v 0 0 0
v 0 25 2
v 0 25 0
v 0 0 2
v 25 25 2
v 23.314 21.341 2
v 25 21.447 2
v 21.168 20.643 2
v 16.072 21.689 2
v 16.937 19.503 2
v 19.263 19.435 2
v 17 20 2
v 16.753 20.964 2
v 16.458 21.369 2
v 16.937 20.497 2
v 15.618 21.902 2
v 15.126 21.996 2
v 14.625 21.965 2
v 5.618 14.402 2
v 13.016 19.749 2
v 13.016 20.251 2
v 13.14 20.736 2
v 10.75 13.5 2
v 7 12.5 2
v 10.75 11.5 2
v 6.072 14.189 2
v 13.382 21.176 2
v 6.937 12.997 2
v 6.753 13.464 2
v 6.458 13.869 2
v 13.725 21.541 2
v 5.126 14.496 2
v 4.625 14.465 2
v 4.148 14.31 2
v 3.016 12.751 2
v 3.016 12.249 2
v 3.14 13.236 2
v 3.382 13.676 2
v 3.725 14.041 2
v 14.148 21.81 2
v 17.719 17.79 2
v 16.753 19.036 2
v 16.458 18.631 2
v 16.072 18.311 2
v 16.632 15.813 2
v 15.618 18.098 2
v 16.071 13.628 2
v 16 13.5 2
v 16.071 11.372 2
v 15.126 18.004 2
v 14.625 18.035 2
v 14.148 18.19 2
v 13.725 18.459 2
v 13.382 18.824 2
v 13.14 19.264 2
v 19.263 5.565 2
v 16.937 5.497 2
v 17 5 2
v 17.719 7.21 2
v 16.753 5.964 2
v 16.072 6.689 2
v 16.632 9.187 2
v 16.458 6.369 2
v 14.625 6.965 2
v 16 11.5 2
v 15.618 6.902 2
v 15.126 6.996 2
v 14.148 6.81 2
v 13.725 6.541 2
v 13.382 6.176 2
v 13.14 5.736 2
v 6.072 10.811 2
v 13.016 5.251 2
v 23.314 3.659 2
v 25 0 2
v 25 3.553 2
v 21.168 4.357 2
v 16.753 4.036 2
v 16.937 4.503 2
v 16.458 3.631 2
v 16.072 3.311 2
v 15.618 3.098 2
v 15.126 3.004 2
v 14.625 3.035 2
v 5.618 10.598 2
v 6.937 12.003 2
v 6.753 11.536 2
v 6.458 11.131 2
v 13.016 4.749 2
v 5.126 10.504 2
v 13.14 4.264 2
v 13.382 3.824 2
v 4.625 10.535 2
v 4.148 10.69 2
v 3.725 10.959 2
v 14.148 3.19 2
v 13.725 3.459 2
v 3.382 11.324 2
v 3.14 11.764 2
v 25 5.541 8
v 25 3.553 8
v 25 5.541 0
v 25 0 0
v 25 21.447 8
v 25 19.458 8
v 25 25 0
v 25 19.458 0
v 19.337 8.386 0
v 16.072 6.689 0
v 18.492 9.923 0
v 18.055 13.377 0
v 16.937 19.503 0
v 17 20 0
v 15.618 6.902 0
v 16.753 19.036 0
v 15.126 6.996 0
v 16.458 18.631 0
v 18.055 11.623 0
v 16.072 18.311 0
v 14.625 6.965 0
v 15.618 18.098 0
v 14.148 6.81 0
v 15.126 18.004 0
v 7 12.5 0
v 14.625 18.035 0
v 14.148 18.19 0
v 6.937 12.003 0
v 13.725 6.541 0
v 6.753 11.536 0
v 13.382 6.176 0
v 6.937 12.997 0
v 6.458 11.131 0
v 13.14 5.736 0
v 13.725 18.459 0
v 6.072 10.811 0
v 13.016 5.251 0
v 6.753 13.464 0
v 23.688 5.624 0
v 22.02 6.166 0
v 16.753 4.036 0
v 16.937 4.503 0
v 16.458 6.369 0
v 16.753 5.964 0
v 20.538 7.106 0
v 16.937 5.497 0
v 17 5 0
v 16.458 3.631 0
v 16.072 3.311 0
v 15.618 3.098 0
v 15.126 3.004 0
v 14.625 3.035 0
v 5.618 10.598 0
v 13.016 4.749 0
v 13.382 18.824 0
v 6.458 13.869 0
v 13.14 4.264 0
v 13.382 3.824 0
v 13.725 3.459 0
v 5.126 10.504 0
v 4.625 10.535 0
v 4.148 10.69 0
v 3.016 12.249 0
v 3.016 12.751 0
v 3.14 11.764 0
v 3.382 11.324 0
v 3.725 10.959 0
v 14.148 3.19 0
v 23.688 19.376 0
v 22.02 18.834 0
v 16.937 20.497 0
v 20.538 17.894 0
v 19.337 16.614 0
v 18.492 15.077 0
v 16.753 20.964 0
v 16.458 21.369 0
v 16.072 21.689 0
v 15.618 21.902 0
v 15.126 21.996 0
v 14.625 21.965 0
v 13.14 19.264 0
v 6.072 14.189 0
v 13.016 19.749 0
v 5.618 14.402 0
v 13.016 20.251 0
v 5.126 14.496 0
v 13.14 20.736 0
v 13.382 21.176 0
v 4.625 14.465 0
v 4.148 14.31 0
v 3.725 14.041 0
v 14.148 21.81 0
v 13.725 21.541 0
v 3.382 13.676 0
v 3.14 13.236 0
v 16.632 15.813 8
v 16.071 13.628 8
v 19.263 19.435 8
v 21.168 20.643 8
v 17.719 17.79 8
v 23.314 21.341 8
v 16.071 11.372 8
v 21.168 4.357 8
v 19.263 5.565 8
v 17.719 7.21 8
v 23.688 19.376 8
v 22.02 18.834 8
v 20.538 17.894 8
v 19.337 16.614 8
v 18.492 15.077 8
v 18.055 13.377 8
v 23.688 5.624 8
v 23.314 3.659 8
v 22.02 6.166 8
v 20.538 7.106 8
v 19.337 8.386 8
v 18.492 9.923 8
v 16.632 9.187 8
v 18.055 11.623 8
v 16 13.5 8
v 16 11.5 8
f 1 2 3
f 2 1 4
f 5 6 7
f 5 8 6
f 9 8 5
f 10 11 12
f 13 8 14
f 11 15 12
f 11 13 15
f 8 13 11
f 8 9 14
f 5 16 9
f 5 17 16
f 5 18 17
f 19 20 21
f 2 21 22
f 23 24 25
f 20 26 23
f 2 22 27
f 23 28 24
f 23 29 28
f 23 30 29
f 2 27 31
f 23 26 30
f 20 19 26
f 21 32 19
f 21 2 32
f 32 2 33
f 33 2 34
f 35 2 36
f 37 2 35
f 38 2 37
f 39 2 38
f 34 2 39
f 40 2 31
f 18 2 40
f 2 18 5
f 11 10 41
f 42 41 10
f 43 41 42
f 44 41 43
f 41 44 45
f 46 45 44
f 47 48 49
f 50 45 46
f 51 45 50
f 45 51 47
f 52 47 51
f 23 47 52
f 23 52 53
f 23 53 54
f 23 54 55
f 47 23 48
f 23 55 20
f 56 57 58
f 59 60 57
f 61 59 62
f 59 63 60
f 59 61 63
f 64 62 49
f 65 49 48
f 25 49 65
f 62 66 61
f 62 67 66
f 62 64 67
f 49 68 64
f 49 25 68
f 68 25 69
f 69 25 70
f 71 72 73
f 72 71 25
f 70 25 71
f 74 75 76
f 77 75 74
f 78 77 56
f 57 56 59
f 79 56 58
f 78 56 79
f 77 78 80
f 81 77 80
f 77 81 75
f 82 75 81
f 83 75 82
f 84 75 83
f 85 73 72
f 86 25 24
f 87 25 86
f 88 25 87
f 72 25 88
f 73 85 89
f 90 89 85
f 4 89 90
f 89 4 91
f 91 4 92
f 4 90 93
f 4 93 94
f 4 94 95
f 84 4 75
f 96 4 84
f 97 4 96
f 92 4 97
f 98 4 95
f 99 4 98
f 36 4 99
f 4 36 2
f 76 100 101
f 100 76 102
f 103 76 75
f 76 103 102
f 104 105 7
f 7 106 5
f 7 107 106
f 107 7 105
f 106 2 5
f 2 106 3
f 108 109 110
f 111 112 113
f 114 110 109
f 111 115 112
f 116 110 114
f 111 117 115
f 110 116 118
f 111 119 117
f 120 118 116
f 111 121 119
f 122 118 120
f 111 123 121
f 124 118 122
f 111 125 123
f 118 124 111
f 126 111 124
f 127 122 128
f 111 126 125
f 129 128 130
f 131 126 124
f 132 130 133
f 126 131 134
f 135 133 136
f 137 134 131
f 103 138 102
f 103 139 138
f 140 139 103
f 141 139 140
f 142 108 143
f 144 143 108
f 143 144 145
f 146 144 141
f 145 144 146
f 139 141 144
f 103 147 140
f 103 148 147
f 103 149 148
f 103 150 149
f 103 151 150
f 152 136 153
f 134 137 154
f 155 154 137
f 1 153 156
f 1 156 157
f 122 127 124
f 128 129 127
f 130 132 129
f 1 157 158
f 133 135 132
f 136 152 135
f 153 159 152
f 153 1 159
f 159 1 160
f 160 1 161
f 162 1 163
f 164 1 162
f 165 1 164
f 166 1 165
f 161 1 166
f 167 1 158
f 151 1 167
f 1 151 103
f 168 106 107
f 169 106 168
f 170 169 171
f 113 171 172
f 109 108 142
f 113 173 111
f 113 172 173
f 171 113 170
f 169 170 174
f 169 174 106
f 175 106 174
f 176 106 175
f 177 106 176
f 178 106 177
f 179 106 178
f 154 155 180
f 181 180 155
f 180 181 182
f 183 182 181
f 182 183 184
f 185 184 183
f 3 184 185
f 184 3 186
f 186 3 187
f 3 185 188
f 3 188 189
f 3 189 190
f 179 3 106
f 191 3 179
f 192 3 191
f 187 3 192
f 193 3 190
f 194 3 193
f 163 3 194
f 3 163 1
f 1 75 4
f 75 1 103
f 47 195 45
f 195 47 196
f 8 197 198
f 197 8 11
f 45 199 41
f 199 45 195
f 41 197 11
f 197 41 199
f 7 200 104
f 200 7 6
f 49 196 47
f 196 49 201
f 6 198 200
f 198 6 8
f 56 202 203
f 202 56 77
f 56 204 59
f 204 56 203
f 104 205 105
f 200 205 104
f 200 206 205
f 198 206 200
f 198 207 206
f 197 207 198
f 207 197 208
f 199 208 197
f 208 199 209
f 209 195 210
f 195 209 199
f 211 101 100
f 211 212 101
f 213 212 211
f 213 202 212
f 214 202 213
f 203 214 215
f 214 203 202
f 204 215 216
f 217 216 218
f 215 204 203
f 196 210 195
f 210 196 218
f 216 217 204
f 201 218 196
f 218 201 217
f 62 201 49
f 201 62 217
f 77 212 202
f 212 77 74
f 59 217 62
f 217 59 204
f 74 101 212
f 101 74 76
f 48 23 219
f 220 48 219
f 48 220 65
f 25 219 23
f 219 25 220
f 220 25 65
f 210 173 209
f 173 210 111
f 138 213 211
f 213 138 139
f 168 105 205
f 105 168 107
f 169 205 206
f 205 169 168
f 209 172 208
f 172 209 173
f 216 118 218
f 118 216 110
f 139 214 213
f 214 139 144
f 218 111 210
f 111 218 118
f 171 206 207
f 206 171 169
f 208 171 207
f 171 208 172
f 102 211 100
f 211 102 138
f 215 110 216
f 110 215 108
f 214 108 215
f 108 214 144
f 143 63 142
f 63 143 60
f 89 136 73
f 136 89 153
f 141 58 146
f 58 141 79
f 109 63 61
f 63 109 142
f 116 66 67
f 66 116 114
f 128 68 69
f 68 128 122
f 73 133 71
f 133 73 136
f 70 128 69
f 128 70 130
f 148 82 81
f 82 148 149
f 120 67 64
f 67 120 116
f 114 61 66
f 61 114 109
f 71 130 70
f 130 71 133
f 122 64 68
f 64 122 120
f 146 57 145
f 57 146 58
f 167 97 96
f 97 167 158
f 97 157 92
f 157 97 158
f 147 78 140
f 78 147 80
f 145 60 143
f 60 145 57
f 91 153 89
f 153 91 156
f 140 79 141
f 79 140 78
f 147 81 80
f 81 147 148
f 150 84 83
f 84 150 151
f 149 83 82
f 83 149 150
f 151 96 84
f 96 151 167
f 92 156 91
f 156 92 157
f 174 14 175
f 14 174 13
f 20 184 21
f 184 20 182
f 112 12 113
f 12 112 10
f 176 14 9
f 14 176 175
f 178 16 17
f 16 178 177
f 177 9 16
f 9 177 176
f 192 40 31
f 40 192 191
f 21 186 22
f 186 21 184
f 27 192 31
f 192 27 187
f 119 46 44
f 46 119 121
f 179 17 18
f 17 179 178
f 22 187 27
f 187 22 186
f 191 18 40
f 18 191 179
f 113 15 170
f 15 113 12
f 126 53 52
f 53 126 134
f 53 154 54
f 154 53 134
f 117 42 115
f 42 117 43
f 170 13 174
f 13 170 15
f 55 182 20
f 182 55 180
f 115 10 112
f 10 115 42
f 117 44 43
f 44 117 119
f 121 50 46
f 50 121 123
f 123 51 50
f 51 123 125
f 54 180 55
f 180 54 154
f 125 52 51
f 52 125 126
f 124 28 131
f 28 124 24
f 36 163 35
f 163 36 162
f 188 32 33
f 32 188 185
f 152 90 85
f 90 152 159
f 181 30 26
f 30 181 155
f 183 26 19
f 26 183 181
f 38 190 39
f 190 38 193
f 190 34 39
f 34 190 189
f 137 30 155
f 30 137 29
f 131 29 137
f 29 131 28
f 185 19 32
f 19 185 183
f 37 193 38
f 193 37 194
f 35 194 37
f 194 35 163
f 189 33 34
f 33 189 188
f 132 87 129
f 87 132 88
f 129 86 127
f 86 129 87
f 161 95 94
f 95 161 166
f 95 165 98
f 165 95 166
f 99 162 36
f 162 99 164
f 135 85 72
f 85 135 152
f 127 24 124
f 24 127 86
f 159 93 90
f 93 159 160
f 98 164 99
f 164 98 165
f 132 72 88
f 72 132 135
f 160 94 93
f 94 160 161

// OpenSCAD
bracket_thickness = 2;
tube_length = bracket_thickness * 4;
tube_outer_radius = 9;
tube_thickness = 2;
tube_inner_radius = tube_outer_radius - tube_thickness;
$fn=25;

module brace() {
    translate([9,12.5 - bracket_thickness/2,0])
        polyhedron(
            points=[
                [0,0,0],
                [7,0,0],
                [7,bracket_thickness,0],
                [0,bracket_thickness,0],
                [7,bracket_thickness,tube_length],
                [7,0,tube_length]
            ],
            faces=[[0,1,2,3],[5,4,3,2],[0,4,5,1],[0,3,4],[5,2,1]]
        );
}

module backer() {
    cube(size=[25,25,bracket_thickness]);
    translate([25,12.5,0])
        cylinder(r=tube_outer_radius, h=tube_length);
    brace();
}

difference() {
    backer();
    translate([25,12.5,-1]) #cylinder(r=tube_inner_radius, h=tube_length + 2);
    translate([25,0,-1]) #cube(size=[10,25,tube_length + 2]);
    translate([15,5,-1]) #cylinder(r=bracket_thickness, h=bracket_thickness + 2);
    translate([15,20,-1]) #cylinder(r=bracket_thickness, h=bracket_thickness + 2);
    translate([5,12.5,-1]) #cylinder(r=bracket_thickness, h=bracket_thickness + 2);
}
